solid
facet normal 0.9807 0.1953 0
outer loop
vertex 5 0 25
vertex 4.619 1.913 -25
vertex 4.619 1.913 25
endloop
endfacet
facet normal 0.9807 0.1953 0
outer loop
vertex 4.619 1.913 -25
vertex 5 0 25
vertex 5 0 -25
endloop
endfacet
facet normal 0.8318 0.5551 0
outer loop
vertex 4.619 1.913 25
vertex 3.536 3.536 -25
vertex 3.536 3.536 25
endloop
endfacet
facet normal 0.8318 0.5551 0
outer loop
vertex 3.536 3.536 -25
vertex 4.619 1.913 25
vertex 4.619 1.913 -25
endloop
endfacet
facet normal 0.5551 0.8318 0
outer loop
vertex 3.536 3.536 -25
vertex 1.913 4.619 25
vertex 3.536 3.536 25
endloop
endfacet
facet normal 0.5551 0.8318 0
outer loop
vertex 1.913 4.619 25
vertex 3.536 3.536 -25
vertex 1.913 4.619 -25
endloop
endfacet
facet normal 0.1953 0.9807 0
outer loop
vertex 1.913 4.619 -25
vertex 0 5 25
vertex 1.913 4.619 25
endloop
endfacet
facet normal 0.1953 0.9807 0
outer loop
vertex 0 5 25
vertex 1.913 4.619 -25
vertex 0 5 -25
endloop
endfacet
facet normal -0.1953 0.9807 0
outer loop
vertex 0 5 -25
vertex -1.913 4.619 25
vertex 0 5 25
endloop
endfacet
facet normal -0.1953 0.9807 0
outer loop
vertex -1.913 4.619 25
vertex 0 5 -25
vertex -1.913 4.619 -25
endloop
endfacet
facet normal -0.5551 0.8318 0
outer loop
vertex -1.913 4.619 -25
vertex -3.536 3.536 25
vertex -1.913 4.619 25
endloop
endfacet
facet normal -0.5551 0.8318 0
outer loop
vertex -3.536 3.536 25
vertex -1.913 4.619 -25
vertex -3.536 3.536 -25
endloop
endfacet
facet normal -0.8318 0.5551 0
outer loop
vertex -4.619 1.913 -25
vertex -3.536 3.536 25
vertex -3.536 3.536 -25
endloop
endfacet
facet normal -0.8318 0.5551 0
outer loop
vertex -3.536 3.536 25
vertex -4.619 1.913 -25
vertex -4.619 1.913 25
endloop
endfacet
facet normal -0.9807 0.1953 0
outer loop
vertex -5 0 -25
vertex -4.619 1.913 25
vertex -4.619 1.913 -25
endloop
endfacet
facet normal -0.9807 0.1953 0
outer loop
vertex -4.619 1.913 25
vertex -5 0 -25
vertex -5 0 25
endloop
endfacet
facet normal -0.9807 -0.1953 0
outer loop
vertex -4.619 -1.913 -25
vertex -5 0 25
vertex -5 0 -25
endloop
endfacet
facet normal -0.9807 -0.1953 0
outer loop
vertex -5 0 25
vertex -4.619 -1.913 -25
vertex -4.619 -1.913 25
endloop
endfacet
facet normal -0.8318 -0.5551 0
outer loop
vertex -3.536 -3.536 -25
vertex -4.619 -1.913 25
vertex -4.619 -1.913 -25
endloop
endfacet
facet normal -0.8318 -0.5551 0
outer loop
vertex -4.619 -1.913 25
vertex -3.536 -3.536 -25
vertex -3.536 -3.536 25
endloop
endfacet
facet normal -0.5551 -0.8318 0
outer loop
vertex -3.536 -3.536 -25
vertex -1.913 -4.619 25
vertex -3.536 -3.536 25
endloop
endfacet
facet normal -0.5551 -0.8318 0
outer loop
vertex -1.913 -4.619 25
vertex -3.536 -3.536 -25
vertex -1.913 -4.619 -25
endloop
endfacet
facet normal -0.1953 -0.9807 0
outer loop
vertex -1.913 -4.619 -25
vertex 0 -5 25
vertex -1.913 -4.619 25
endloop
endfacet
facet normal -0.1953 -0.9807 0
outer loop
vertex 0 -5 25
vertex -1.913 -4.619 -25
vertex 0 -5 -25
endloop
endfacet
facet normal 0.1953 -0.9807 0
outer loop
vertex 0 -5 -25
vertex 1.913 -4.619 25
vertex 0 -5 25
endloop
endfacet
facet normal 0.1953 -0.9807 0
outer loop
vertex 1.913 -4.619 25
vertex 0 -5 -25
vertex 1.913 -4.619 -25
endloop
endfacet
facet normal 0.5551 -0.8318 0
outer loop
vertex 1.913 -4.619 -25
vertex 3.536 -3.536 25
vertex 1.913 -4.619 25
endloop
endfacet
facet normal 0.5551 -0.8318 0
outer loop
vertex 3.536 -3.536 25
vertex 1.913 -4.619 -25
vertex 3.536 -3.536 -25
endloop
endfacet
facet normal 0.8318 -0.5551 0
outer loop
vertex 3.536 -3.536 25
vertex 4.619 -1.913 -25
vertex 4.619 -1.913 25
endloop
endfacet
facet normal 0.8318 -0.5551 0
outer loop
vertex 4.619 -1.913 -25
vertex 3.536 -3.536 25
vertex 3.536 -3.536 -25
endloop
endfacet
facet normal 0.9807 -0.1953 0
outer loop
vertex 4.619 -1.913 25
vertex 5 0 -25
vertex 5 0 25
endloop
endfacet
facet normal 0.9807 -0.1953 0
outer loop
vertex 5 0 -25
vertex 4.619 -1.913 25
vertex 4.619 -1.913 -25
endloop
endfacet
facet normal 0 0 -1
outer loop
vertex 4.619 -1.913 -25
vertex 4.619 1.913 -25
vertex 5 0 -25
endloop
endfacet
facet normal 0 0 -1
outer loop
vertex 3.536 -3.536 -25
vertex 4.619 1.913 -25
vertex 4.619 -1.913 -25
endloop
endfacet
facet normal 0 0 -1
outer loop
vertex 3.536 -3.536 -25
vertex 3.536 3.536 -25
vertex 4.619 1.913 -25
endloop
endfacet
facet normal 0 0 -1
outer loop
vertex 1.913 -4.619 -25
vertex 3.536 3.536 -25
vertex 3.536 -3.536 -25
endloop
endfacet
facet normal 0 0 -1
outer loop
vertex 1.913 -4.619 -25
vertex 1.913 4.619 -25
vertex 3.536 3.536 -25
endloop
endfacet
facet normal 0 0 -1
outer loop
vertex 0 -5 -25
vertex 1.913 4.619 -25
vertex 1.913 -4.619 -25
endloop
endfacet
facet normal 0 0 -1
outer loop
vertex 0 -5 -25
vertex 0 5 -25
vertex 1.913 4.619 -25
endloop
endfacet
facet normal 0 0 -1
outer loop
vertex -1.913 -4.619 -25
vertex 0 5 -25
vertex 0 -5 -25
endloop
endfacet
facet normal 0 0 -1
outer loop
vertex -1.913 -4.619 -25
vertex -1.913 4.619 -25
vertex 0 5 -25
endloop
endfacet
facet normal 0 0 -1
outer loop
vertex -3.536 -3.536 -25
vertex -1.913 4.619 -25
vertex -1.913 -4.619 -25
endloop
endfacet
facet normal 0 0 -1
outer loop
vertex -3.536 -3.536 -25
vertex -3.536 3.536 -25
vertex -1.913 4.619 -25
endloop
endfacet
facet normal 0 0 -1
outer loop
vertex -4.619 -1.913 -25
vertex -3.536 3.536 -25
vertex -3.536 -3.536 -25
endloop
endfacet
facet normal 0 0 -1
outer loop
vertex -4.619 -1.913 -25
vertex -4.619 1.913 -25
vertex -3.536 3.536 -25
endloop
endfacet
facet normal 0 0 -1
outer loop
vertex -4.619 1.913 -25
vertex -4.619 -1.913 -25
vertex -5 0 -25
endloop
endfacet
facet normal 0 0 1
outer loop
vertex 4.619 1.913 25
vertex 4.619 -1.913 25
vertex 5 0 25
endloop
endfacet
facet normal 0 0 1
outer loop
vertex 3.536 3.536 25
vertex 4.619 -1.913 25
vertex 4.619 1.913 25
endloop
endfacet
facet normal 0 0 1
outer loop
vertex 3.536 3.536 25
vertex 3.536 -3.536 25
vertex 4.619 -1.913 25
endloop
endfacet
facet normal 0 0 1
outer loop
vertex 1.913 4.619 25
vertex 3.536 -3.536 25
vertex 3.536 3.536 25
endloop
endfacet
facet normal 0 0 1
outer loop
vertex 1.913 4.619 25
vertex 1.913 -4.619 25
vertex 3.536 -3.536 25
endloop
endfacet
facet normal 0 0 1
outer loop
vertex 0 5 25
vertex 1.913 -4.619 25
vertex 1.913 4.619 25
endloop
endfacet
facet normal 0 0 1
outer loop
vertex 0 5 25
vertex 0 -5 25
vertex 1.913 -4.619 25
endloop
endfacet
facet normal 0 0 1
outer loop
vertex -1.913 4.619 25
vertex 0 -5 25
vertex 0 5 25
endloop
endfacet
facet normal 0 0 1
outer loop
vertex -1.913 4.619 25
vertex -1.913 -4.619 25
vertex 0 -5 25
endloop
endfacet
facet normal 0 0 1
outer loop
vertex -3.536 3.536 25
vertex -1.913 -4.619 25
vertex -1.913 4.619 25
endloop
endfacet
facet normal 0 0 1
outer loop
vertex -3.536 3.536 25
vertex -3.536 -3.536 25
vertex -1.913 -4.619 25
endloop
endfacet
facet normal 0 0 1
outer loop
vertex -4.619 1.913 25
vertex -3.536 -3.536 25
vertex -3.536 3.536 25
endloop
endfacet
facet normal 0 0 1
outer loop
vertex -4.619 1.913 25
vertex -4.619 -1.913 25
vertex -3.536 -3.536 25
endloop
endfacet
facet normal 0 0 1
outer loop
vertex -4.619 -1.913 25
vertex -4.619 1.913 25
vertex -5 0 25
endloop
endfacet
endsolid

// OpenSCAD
// Parameters for the central shaft
shaft_diameter = 10; // Diameter of the central shaft
shaft_length = 50;   // Length of the central shaft

// Central Shaft
module central_shaft() {
    cylinder(d = shaft_diameter, h = shaft_length, center = true);
}

// Render the central shaft
central_shaft();
